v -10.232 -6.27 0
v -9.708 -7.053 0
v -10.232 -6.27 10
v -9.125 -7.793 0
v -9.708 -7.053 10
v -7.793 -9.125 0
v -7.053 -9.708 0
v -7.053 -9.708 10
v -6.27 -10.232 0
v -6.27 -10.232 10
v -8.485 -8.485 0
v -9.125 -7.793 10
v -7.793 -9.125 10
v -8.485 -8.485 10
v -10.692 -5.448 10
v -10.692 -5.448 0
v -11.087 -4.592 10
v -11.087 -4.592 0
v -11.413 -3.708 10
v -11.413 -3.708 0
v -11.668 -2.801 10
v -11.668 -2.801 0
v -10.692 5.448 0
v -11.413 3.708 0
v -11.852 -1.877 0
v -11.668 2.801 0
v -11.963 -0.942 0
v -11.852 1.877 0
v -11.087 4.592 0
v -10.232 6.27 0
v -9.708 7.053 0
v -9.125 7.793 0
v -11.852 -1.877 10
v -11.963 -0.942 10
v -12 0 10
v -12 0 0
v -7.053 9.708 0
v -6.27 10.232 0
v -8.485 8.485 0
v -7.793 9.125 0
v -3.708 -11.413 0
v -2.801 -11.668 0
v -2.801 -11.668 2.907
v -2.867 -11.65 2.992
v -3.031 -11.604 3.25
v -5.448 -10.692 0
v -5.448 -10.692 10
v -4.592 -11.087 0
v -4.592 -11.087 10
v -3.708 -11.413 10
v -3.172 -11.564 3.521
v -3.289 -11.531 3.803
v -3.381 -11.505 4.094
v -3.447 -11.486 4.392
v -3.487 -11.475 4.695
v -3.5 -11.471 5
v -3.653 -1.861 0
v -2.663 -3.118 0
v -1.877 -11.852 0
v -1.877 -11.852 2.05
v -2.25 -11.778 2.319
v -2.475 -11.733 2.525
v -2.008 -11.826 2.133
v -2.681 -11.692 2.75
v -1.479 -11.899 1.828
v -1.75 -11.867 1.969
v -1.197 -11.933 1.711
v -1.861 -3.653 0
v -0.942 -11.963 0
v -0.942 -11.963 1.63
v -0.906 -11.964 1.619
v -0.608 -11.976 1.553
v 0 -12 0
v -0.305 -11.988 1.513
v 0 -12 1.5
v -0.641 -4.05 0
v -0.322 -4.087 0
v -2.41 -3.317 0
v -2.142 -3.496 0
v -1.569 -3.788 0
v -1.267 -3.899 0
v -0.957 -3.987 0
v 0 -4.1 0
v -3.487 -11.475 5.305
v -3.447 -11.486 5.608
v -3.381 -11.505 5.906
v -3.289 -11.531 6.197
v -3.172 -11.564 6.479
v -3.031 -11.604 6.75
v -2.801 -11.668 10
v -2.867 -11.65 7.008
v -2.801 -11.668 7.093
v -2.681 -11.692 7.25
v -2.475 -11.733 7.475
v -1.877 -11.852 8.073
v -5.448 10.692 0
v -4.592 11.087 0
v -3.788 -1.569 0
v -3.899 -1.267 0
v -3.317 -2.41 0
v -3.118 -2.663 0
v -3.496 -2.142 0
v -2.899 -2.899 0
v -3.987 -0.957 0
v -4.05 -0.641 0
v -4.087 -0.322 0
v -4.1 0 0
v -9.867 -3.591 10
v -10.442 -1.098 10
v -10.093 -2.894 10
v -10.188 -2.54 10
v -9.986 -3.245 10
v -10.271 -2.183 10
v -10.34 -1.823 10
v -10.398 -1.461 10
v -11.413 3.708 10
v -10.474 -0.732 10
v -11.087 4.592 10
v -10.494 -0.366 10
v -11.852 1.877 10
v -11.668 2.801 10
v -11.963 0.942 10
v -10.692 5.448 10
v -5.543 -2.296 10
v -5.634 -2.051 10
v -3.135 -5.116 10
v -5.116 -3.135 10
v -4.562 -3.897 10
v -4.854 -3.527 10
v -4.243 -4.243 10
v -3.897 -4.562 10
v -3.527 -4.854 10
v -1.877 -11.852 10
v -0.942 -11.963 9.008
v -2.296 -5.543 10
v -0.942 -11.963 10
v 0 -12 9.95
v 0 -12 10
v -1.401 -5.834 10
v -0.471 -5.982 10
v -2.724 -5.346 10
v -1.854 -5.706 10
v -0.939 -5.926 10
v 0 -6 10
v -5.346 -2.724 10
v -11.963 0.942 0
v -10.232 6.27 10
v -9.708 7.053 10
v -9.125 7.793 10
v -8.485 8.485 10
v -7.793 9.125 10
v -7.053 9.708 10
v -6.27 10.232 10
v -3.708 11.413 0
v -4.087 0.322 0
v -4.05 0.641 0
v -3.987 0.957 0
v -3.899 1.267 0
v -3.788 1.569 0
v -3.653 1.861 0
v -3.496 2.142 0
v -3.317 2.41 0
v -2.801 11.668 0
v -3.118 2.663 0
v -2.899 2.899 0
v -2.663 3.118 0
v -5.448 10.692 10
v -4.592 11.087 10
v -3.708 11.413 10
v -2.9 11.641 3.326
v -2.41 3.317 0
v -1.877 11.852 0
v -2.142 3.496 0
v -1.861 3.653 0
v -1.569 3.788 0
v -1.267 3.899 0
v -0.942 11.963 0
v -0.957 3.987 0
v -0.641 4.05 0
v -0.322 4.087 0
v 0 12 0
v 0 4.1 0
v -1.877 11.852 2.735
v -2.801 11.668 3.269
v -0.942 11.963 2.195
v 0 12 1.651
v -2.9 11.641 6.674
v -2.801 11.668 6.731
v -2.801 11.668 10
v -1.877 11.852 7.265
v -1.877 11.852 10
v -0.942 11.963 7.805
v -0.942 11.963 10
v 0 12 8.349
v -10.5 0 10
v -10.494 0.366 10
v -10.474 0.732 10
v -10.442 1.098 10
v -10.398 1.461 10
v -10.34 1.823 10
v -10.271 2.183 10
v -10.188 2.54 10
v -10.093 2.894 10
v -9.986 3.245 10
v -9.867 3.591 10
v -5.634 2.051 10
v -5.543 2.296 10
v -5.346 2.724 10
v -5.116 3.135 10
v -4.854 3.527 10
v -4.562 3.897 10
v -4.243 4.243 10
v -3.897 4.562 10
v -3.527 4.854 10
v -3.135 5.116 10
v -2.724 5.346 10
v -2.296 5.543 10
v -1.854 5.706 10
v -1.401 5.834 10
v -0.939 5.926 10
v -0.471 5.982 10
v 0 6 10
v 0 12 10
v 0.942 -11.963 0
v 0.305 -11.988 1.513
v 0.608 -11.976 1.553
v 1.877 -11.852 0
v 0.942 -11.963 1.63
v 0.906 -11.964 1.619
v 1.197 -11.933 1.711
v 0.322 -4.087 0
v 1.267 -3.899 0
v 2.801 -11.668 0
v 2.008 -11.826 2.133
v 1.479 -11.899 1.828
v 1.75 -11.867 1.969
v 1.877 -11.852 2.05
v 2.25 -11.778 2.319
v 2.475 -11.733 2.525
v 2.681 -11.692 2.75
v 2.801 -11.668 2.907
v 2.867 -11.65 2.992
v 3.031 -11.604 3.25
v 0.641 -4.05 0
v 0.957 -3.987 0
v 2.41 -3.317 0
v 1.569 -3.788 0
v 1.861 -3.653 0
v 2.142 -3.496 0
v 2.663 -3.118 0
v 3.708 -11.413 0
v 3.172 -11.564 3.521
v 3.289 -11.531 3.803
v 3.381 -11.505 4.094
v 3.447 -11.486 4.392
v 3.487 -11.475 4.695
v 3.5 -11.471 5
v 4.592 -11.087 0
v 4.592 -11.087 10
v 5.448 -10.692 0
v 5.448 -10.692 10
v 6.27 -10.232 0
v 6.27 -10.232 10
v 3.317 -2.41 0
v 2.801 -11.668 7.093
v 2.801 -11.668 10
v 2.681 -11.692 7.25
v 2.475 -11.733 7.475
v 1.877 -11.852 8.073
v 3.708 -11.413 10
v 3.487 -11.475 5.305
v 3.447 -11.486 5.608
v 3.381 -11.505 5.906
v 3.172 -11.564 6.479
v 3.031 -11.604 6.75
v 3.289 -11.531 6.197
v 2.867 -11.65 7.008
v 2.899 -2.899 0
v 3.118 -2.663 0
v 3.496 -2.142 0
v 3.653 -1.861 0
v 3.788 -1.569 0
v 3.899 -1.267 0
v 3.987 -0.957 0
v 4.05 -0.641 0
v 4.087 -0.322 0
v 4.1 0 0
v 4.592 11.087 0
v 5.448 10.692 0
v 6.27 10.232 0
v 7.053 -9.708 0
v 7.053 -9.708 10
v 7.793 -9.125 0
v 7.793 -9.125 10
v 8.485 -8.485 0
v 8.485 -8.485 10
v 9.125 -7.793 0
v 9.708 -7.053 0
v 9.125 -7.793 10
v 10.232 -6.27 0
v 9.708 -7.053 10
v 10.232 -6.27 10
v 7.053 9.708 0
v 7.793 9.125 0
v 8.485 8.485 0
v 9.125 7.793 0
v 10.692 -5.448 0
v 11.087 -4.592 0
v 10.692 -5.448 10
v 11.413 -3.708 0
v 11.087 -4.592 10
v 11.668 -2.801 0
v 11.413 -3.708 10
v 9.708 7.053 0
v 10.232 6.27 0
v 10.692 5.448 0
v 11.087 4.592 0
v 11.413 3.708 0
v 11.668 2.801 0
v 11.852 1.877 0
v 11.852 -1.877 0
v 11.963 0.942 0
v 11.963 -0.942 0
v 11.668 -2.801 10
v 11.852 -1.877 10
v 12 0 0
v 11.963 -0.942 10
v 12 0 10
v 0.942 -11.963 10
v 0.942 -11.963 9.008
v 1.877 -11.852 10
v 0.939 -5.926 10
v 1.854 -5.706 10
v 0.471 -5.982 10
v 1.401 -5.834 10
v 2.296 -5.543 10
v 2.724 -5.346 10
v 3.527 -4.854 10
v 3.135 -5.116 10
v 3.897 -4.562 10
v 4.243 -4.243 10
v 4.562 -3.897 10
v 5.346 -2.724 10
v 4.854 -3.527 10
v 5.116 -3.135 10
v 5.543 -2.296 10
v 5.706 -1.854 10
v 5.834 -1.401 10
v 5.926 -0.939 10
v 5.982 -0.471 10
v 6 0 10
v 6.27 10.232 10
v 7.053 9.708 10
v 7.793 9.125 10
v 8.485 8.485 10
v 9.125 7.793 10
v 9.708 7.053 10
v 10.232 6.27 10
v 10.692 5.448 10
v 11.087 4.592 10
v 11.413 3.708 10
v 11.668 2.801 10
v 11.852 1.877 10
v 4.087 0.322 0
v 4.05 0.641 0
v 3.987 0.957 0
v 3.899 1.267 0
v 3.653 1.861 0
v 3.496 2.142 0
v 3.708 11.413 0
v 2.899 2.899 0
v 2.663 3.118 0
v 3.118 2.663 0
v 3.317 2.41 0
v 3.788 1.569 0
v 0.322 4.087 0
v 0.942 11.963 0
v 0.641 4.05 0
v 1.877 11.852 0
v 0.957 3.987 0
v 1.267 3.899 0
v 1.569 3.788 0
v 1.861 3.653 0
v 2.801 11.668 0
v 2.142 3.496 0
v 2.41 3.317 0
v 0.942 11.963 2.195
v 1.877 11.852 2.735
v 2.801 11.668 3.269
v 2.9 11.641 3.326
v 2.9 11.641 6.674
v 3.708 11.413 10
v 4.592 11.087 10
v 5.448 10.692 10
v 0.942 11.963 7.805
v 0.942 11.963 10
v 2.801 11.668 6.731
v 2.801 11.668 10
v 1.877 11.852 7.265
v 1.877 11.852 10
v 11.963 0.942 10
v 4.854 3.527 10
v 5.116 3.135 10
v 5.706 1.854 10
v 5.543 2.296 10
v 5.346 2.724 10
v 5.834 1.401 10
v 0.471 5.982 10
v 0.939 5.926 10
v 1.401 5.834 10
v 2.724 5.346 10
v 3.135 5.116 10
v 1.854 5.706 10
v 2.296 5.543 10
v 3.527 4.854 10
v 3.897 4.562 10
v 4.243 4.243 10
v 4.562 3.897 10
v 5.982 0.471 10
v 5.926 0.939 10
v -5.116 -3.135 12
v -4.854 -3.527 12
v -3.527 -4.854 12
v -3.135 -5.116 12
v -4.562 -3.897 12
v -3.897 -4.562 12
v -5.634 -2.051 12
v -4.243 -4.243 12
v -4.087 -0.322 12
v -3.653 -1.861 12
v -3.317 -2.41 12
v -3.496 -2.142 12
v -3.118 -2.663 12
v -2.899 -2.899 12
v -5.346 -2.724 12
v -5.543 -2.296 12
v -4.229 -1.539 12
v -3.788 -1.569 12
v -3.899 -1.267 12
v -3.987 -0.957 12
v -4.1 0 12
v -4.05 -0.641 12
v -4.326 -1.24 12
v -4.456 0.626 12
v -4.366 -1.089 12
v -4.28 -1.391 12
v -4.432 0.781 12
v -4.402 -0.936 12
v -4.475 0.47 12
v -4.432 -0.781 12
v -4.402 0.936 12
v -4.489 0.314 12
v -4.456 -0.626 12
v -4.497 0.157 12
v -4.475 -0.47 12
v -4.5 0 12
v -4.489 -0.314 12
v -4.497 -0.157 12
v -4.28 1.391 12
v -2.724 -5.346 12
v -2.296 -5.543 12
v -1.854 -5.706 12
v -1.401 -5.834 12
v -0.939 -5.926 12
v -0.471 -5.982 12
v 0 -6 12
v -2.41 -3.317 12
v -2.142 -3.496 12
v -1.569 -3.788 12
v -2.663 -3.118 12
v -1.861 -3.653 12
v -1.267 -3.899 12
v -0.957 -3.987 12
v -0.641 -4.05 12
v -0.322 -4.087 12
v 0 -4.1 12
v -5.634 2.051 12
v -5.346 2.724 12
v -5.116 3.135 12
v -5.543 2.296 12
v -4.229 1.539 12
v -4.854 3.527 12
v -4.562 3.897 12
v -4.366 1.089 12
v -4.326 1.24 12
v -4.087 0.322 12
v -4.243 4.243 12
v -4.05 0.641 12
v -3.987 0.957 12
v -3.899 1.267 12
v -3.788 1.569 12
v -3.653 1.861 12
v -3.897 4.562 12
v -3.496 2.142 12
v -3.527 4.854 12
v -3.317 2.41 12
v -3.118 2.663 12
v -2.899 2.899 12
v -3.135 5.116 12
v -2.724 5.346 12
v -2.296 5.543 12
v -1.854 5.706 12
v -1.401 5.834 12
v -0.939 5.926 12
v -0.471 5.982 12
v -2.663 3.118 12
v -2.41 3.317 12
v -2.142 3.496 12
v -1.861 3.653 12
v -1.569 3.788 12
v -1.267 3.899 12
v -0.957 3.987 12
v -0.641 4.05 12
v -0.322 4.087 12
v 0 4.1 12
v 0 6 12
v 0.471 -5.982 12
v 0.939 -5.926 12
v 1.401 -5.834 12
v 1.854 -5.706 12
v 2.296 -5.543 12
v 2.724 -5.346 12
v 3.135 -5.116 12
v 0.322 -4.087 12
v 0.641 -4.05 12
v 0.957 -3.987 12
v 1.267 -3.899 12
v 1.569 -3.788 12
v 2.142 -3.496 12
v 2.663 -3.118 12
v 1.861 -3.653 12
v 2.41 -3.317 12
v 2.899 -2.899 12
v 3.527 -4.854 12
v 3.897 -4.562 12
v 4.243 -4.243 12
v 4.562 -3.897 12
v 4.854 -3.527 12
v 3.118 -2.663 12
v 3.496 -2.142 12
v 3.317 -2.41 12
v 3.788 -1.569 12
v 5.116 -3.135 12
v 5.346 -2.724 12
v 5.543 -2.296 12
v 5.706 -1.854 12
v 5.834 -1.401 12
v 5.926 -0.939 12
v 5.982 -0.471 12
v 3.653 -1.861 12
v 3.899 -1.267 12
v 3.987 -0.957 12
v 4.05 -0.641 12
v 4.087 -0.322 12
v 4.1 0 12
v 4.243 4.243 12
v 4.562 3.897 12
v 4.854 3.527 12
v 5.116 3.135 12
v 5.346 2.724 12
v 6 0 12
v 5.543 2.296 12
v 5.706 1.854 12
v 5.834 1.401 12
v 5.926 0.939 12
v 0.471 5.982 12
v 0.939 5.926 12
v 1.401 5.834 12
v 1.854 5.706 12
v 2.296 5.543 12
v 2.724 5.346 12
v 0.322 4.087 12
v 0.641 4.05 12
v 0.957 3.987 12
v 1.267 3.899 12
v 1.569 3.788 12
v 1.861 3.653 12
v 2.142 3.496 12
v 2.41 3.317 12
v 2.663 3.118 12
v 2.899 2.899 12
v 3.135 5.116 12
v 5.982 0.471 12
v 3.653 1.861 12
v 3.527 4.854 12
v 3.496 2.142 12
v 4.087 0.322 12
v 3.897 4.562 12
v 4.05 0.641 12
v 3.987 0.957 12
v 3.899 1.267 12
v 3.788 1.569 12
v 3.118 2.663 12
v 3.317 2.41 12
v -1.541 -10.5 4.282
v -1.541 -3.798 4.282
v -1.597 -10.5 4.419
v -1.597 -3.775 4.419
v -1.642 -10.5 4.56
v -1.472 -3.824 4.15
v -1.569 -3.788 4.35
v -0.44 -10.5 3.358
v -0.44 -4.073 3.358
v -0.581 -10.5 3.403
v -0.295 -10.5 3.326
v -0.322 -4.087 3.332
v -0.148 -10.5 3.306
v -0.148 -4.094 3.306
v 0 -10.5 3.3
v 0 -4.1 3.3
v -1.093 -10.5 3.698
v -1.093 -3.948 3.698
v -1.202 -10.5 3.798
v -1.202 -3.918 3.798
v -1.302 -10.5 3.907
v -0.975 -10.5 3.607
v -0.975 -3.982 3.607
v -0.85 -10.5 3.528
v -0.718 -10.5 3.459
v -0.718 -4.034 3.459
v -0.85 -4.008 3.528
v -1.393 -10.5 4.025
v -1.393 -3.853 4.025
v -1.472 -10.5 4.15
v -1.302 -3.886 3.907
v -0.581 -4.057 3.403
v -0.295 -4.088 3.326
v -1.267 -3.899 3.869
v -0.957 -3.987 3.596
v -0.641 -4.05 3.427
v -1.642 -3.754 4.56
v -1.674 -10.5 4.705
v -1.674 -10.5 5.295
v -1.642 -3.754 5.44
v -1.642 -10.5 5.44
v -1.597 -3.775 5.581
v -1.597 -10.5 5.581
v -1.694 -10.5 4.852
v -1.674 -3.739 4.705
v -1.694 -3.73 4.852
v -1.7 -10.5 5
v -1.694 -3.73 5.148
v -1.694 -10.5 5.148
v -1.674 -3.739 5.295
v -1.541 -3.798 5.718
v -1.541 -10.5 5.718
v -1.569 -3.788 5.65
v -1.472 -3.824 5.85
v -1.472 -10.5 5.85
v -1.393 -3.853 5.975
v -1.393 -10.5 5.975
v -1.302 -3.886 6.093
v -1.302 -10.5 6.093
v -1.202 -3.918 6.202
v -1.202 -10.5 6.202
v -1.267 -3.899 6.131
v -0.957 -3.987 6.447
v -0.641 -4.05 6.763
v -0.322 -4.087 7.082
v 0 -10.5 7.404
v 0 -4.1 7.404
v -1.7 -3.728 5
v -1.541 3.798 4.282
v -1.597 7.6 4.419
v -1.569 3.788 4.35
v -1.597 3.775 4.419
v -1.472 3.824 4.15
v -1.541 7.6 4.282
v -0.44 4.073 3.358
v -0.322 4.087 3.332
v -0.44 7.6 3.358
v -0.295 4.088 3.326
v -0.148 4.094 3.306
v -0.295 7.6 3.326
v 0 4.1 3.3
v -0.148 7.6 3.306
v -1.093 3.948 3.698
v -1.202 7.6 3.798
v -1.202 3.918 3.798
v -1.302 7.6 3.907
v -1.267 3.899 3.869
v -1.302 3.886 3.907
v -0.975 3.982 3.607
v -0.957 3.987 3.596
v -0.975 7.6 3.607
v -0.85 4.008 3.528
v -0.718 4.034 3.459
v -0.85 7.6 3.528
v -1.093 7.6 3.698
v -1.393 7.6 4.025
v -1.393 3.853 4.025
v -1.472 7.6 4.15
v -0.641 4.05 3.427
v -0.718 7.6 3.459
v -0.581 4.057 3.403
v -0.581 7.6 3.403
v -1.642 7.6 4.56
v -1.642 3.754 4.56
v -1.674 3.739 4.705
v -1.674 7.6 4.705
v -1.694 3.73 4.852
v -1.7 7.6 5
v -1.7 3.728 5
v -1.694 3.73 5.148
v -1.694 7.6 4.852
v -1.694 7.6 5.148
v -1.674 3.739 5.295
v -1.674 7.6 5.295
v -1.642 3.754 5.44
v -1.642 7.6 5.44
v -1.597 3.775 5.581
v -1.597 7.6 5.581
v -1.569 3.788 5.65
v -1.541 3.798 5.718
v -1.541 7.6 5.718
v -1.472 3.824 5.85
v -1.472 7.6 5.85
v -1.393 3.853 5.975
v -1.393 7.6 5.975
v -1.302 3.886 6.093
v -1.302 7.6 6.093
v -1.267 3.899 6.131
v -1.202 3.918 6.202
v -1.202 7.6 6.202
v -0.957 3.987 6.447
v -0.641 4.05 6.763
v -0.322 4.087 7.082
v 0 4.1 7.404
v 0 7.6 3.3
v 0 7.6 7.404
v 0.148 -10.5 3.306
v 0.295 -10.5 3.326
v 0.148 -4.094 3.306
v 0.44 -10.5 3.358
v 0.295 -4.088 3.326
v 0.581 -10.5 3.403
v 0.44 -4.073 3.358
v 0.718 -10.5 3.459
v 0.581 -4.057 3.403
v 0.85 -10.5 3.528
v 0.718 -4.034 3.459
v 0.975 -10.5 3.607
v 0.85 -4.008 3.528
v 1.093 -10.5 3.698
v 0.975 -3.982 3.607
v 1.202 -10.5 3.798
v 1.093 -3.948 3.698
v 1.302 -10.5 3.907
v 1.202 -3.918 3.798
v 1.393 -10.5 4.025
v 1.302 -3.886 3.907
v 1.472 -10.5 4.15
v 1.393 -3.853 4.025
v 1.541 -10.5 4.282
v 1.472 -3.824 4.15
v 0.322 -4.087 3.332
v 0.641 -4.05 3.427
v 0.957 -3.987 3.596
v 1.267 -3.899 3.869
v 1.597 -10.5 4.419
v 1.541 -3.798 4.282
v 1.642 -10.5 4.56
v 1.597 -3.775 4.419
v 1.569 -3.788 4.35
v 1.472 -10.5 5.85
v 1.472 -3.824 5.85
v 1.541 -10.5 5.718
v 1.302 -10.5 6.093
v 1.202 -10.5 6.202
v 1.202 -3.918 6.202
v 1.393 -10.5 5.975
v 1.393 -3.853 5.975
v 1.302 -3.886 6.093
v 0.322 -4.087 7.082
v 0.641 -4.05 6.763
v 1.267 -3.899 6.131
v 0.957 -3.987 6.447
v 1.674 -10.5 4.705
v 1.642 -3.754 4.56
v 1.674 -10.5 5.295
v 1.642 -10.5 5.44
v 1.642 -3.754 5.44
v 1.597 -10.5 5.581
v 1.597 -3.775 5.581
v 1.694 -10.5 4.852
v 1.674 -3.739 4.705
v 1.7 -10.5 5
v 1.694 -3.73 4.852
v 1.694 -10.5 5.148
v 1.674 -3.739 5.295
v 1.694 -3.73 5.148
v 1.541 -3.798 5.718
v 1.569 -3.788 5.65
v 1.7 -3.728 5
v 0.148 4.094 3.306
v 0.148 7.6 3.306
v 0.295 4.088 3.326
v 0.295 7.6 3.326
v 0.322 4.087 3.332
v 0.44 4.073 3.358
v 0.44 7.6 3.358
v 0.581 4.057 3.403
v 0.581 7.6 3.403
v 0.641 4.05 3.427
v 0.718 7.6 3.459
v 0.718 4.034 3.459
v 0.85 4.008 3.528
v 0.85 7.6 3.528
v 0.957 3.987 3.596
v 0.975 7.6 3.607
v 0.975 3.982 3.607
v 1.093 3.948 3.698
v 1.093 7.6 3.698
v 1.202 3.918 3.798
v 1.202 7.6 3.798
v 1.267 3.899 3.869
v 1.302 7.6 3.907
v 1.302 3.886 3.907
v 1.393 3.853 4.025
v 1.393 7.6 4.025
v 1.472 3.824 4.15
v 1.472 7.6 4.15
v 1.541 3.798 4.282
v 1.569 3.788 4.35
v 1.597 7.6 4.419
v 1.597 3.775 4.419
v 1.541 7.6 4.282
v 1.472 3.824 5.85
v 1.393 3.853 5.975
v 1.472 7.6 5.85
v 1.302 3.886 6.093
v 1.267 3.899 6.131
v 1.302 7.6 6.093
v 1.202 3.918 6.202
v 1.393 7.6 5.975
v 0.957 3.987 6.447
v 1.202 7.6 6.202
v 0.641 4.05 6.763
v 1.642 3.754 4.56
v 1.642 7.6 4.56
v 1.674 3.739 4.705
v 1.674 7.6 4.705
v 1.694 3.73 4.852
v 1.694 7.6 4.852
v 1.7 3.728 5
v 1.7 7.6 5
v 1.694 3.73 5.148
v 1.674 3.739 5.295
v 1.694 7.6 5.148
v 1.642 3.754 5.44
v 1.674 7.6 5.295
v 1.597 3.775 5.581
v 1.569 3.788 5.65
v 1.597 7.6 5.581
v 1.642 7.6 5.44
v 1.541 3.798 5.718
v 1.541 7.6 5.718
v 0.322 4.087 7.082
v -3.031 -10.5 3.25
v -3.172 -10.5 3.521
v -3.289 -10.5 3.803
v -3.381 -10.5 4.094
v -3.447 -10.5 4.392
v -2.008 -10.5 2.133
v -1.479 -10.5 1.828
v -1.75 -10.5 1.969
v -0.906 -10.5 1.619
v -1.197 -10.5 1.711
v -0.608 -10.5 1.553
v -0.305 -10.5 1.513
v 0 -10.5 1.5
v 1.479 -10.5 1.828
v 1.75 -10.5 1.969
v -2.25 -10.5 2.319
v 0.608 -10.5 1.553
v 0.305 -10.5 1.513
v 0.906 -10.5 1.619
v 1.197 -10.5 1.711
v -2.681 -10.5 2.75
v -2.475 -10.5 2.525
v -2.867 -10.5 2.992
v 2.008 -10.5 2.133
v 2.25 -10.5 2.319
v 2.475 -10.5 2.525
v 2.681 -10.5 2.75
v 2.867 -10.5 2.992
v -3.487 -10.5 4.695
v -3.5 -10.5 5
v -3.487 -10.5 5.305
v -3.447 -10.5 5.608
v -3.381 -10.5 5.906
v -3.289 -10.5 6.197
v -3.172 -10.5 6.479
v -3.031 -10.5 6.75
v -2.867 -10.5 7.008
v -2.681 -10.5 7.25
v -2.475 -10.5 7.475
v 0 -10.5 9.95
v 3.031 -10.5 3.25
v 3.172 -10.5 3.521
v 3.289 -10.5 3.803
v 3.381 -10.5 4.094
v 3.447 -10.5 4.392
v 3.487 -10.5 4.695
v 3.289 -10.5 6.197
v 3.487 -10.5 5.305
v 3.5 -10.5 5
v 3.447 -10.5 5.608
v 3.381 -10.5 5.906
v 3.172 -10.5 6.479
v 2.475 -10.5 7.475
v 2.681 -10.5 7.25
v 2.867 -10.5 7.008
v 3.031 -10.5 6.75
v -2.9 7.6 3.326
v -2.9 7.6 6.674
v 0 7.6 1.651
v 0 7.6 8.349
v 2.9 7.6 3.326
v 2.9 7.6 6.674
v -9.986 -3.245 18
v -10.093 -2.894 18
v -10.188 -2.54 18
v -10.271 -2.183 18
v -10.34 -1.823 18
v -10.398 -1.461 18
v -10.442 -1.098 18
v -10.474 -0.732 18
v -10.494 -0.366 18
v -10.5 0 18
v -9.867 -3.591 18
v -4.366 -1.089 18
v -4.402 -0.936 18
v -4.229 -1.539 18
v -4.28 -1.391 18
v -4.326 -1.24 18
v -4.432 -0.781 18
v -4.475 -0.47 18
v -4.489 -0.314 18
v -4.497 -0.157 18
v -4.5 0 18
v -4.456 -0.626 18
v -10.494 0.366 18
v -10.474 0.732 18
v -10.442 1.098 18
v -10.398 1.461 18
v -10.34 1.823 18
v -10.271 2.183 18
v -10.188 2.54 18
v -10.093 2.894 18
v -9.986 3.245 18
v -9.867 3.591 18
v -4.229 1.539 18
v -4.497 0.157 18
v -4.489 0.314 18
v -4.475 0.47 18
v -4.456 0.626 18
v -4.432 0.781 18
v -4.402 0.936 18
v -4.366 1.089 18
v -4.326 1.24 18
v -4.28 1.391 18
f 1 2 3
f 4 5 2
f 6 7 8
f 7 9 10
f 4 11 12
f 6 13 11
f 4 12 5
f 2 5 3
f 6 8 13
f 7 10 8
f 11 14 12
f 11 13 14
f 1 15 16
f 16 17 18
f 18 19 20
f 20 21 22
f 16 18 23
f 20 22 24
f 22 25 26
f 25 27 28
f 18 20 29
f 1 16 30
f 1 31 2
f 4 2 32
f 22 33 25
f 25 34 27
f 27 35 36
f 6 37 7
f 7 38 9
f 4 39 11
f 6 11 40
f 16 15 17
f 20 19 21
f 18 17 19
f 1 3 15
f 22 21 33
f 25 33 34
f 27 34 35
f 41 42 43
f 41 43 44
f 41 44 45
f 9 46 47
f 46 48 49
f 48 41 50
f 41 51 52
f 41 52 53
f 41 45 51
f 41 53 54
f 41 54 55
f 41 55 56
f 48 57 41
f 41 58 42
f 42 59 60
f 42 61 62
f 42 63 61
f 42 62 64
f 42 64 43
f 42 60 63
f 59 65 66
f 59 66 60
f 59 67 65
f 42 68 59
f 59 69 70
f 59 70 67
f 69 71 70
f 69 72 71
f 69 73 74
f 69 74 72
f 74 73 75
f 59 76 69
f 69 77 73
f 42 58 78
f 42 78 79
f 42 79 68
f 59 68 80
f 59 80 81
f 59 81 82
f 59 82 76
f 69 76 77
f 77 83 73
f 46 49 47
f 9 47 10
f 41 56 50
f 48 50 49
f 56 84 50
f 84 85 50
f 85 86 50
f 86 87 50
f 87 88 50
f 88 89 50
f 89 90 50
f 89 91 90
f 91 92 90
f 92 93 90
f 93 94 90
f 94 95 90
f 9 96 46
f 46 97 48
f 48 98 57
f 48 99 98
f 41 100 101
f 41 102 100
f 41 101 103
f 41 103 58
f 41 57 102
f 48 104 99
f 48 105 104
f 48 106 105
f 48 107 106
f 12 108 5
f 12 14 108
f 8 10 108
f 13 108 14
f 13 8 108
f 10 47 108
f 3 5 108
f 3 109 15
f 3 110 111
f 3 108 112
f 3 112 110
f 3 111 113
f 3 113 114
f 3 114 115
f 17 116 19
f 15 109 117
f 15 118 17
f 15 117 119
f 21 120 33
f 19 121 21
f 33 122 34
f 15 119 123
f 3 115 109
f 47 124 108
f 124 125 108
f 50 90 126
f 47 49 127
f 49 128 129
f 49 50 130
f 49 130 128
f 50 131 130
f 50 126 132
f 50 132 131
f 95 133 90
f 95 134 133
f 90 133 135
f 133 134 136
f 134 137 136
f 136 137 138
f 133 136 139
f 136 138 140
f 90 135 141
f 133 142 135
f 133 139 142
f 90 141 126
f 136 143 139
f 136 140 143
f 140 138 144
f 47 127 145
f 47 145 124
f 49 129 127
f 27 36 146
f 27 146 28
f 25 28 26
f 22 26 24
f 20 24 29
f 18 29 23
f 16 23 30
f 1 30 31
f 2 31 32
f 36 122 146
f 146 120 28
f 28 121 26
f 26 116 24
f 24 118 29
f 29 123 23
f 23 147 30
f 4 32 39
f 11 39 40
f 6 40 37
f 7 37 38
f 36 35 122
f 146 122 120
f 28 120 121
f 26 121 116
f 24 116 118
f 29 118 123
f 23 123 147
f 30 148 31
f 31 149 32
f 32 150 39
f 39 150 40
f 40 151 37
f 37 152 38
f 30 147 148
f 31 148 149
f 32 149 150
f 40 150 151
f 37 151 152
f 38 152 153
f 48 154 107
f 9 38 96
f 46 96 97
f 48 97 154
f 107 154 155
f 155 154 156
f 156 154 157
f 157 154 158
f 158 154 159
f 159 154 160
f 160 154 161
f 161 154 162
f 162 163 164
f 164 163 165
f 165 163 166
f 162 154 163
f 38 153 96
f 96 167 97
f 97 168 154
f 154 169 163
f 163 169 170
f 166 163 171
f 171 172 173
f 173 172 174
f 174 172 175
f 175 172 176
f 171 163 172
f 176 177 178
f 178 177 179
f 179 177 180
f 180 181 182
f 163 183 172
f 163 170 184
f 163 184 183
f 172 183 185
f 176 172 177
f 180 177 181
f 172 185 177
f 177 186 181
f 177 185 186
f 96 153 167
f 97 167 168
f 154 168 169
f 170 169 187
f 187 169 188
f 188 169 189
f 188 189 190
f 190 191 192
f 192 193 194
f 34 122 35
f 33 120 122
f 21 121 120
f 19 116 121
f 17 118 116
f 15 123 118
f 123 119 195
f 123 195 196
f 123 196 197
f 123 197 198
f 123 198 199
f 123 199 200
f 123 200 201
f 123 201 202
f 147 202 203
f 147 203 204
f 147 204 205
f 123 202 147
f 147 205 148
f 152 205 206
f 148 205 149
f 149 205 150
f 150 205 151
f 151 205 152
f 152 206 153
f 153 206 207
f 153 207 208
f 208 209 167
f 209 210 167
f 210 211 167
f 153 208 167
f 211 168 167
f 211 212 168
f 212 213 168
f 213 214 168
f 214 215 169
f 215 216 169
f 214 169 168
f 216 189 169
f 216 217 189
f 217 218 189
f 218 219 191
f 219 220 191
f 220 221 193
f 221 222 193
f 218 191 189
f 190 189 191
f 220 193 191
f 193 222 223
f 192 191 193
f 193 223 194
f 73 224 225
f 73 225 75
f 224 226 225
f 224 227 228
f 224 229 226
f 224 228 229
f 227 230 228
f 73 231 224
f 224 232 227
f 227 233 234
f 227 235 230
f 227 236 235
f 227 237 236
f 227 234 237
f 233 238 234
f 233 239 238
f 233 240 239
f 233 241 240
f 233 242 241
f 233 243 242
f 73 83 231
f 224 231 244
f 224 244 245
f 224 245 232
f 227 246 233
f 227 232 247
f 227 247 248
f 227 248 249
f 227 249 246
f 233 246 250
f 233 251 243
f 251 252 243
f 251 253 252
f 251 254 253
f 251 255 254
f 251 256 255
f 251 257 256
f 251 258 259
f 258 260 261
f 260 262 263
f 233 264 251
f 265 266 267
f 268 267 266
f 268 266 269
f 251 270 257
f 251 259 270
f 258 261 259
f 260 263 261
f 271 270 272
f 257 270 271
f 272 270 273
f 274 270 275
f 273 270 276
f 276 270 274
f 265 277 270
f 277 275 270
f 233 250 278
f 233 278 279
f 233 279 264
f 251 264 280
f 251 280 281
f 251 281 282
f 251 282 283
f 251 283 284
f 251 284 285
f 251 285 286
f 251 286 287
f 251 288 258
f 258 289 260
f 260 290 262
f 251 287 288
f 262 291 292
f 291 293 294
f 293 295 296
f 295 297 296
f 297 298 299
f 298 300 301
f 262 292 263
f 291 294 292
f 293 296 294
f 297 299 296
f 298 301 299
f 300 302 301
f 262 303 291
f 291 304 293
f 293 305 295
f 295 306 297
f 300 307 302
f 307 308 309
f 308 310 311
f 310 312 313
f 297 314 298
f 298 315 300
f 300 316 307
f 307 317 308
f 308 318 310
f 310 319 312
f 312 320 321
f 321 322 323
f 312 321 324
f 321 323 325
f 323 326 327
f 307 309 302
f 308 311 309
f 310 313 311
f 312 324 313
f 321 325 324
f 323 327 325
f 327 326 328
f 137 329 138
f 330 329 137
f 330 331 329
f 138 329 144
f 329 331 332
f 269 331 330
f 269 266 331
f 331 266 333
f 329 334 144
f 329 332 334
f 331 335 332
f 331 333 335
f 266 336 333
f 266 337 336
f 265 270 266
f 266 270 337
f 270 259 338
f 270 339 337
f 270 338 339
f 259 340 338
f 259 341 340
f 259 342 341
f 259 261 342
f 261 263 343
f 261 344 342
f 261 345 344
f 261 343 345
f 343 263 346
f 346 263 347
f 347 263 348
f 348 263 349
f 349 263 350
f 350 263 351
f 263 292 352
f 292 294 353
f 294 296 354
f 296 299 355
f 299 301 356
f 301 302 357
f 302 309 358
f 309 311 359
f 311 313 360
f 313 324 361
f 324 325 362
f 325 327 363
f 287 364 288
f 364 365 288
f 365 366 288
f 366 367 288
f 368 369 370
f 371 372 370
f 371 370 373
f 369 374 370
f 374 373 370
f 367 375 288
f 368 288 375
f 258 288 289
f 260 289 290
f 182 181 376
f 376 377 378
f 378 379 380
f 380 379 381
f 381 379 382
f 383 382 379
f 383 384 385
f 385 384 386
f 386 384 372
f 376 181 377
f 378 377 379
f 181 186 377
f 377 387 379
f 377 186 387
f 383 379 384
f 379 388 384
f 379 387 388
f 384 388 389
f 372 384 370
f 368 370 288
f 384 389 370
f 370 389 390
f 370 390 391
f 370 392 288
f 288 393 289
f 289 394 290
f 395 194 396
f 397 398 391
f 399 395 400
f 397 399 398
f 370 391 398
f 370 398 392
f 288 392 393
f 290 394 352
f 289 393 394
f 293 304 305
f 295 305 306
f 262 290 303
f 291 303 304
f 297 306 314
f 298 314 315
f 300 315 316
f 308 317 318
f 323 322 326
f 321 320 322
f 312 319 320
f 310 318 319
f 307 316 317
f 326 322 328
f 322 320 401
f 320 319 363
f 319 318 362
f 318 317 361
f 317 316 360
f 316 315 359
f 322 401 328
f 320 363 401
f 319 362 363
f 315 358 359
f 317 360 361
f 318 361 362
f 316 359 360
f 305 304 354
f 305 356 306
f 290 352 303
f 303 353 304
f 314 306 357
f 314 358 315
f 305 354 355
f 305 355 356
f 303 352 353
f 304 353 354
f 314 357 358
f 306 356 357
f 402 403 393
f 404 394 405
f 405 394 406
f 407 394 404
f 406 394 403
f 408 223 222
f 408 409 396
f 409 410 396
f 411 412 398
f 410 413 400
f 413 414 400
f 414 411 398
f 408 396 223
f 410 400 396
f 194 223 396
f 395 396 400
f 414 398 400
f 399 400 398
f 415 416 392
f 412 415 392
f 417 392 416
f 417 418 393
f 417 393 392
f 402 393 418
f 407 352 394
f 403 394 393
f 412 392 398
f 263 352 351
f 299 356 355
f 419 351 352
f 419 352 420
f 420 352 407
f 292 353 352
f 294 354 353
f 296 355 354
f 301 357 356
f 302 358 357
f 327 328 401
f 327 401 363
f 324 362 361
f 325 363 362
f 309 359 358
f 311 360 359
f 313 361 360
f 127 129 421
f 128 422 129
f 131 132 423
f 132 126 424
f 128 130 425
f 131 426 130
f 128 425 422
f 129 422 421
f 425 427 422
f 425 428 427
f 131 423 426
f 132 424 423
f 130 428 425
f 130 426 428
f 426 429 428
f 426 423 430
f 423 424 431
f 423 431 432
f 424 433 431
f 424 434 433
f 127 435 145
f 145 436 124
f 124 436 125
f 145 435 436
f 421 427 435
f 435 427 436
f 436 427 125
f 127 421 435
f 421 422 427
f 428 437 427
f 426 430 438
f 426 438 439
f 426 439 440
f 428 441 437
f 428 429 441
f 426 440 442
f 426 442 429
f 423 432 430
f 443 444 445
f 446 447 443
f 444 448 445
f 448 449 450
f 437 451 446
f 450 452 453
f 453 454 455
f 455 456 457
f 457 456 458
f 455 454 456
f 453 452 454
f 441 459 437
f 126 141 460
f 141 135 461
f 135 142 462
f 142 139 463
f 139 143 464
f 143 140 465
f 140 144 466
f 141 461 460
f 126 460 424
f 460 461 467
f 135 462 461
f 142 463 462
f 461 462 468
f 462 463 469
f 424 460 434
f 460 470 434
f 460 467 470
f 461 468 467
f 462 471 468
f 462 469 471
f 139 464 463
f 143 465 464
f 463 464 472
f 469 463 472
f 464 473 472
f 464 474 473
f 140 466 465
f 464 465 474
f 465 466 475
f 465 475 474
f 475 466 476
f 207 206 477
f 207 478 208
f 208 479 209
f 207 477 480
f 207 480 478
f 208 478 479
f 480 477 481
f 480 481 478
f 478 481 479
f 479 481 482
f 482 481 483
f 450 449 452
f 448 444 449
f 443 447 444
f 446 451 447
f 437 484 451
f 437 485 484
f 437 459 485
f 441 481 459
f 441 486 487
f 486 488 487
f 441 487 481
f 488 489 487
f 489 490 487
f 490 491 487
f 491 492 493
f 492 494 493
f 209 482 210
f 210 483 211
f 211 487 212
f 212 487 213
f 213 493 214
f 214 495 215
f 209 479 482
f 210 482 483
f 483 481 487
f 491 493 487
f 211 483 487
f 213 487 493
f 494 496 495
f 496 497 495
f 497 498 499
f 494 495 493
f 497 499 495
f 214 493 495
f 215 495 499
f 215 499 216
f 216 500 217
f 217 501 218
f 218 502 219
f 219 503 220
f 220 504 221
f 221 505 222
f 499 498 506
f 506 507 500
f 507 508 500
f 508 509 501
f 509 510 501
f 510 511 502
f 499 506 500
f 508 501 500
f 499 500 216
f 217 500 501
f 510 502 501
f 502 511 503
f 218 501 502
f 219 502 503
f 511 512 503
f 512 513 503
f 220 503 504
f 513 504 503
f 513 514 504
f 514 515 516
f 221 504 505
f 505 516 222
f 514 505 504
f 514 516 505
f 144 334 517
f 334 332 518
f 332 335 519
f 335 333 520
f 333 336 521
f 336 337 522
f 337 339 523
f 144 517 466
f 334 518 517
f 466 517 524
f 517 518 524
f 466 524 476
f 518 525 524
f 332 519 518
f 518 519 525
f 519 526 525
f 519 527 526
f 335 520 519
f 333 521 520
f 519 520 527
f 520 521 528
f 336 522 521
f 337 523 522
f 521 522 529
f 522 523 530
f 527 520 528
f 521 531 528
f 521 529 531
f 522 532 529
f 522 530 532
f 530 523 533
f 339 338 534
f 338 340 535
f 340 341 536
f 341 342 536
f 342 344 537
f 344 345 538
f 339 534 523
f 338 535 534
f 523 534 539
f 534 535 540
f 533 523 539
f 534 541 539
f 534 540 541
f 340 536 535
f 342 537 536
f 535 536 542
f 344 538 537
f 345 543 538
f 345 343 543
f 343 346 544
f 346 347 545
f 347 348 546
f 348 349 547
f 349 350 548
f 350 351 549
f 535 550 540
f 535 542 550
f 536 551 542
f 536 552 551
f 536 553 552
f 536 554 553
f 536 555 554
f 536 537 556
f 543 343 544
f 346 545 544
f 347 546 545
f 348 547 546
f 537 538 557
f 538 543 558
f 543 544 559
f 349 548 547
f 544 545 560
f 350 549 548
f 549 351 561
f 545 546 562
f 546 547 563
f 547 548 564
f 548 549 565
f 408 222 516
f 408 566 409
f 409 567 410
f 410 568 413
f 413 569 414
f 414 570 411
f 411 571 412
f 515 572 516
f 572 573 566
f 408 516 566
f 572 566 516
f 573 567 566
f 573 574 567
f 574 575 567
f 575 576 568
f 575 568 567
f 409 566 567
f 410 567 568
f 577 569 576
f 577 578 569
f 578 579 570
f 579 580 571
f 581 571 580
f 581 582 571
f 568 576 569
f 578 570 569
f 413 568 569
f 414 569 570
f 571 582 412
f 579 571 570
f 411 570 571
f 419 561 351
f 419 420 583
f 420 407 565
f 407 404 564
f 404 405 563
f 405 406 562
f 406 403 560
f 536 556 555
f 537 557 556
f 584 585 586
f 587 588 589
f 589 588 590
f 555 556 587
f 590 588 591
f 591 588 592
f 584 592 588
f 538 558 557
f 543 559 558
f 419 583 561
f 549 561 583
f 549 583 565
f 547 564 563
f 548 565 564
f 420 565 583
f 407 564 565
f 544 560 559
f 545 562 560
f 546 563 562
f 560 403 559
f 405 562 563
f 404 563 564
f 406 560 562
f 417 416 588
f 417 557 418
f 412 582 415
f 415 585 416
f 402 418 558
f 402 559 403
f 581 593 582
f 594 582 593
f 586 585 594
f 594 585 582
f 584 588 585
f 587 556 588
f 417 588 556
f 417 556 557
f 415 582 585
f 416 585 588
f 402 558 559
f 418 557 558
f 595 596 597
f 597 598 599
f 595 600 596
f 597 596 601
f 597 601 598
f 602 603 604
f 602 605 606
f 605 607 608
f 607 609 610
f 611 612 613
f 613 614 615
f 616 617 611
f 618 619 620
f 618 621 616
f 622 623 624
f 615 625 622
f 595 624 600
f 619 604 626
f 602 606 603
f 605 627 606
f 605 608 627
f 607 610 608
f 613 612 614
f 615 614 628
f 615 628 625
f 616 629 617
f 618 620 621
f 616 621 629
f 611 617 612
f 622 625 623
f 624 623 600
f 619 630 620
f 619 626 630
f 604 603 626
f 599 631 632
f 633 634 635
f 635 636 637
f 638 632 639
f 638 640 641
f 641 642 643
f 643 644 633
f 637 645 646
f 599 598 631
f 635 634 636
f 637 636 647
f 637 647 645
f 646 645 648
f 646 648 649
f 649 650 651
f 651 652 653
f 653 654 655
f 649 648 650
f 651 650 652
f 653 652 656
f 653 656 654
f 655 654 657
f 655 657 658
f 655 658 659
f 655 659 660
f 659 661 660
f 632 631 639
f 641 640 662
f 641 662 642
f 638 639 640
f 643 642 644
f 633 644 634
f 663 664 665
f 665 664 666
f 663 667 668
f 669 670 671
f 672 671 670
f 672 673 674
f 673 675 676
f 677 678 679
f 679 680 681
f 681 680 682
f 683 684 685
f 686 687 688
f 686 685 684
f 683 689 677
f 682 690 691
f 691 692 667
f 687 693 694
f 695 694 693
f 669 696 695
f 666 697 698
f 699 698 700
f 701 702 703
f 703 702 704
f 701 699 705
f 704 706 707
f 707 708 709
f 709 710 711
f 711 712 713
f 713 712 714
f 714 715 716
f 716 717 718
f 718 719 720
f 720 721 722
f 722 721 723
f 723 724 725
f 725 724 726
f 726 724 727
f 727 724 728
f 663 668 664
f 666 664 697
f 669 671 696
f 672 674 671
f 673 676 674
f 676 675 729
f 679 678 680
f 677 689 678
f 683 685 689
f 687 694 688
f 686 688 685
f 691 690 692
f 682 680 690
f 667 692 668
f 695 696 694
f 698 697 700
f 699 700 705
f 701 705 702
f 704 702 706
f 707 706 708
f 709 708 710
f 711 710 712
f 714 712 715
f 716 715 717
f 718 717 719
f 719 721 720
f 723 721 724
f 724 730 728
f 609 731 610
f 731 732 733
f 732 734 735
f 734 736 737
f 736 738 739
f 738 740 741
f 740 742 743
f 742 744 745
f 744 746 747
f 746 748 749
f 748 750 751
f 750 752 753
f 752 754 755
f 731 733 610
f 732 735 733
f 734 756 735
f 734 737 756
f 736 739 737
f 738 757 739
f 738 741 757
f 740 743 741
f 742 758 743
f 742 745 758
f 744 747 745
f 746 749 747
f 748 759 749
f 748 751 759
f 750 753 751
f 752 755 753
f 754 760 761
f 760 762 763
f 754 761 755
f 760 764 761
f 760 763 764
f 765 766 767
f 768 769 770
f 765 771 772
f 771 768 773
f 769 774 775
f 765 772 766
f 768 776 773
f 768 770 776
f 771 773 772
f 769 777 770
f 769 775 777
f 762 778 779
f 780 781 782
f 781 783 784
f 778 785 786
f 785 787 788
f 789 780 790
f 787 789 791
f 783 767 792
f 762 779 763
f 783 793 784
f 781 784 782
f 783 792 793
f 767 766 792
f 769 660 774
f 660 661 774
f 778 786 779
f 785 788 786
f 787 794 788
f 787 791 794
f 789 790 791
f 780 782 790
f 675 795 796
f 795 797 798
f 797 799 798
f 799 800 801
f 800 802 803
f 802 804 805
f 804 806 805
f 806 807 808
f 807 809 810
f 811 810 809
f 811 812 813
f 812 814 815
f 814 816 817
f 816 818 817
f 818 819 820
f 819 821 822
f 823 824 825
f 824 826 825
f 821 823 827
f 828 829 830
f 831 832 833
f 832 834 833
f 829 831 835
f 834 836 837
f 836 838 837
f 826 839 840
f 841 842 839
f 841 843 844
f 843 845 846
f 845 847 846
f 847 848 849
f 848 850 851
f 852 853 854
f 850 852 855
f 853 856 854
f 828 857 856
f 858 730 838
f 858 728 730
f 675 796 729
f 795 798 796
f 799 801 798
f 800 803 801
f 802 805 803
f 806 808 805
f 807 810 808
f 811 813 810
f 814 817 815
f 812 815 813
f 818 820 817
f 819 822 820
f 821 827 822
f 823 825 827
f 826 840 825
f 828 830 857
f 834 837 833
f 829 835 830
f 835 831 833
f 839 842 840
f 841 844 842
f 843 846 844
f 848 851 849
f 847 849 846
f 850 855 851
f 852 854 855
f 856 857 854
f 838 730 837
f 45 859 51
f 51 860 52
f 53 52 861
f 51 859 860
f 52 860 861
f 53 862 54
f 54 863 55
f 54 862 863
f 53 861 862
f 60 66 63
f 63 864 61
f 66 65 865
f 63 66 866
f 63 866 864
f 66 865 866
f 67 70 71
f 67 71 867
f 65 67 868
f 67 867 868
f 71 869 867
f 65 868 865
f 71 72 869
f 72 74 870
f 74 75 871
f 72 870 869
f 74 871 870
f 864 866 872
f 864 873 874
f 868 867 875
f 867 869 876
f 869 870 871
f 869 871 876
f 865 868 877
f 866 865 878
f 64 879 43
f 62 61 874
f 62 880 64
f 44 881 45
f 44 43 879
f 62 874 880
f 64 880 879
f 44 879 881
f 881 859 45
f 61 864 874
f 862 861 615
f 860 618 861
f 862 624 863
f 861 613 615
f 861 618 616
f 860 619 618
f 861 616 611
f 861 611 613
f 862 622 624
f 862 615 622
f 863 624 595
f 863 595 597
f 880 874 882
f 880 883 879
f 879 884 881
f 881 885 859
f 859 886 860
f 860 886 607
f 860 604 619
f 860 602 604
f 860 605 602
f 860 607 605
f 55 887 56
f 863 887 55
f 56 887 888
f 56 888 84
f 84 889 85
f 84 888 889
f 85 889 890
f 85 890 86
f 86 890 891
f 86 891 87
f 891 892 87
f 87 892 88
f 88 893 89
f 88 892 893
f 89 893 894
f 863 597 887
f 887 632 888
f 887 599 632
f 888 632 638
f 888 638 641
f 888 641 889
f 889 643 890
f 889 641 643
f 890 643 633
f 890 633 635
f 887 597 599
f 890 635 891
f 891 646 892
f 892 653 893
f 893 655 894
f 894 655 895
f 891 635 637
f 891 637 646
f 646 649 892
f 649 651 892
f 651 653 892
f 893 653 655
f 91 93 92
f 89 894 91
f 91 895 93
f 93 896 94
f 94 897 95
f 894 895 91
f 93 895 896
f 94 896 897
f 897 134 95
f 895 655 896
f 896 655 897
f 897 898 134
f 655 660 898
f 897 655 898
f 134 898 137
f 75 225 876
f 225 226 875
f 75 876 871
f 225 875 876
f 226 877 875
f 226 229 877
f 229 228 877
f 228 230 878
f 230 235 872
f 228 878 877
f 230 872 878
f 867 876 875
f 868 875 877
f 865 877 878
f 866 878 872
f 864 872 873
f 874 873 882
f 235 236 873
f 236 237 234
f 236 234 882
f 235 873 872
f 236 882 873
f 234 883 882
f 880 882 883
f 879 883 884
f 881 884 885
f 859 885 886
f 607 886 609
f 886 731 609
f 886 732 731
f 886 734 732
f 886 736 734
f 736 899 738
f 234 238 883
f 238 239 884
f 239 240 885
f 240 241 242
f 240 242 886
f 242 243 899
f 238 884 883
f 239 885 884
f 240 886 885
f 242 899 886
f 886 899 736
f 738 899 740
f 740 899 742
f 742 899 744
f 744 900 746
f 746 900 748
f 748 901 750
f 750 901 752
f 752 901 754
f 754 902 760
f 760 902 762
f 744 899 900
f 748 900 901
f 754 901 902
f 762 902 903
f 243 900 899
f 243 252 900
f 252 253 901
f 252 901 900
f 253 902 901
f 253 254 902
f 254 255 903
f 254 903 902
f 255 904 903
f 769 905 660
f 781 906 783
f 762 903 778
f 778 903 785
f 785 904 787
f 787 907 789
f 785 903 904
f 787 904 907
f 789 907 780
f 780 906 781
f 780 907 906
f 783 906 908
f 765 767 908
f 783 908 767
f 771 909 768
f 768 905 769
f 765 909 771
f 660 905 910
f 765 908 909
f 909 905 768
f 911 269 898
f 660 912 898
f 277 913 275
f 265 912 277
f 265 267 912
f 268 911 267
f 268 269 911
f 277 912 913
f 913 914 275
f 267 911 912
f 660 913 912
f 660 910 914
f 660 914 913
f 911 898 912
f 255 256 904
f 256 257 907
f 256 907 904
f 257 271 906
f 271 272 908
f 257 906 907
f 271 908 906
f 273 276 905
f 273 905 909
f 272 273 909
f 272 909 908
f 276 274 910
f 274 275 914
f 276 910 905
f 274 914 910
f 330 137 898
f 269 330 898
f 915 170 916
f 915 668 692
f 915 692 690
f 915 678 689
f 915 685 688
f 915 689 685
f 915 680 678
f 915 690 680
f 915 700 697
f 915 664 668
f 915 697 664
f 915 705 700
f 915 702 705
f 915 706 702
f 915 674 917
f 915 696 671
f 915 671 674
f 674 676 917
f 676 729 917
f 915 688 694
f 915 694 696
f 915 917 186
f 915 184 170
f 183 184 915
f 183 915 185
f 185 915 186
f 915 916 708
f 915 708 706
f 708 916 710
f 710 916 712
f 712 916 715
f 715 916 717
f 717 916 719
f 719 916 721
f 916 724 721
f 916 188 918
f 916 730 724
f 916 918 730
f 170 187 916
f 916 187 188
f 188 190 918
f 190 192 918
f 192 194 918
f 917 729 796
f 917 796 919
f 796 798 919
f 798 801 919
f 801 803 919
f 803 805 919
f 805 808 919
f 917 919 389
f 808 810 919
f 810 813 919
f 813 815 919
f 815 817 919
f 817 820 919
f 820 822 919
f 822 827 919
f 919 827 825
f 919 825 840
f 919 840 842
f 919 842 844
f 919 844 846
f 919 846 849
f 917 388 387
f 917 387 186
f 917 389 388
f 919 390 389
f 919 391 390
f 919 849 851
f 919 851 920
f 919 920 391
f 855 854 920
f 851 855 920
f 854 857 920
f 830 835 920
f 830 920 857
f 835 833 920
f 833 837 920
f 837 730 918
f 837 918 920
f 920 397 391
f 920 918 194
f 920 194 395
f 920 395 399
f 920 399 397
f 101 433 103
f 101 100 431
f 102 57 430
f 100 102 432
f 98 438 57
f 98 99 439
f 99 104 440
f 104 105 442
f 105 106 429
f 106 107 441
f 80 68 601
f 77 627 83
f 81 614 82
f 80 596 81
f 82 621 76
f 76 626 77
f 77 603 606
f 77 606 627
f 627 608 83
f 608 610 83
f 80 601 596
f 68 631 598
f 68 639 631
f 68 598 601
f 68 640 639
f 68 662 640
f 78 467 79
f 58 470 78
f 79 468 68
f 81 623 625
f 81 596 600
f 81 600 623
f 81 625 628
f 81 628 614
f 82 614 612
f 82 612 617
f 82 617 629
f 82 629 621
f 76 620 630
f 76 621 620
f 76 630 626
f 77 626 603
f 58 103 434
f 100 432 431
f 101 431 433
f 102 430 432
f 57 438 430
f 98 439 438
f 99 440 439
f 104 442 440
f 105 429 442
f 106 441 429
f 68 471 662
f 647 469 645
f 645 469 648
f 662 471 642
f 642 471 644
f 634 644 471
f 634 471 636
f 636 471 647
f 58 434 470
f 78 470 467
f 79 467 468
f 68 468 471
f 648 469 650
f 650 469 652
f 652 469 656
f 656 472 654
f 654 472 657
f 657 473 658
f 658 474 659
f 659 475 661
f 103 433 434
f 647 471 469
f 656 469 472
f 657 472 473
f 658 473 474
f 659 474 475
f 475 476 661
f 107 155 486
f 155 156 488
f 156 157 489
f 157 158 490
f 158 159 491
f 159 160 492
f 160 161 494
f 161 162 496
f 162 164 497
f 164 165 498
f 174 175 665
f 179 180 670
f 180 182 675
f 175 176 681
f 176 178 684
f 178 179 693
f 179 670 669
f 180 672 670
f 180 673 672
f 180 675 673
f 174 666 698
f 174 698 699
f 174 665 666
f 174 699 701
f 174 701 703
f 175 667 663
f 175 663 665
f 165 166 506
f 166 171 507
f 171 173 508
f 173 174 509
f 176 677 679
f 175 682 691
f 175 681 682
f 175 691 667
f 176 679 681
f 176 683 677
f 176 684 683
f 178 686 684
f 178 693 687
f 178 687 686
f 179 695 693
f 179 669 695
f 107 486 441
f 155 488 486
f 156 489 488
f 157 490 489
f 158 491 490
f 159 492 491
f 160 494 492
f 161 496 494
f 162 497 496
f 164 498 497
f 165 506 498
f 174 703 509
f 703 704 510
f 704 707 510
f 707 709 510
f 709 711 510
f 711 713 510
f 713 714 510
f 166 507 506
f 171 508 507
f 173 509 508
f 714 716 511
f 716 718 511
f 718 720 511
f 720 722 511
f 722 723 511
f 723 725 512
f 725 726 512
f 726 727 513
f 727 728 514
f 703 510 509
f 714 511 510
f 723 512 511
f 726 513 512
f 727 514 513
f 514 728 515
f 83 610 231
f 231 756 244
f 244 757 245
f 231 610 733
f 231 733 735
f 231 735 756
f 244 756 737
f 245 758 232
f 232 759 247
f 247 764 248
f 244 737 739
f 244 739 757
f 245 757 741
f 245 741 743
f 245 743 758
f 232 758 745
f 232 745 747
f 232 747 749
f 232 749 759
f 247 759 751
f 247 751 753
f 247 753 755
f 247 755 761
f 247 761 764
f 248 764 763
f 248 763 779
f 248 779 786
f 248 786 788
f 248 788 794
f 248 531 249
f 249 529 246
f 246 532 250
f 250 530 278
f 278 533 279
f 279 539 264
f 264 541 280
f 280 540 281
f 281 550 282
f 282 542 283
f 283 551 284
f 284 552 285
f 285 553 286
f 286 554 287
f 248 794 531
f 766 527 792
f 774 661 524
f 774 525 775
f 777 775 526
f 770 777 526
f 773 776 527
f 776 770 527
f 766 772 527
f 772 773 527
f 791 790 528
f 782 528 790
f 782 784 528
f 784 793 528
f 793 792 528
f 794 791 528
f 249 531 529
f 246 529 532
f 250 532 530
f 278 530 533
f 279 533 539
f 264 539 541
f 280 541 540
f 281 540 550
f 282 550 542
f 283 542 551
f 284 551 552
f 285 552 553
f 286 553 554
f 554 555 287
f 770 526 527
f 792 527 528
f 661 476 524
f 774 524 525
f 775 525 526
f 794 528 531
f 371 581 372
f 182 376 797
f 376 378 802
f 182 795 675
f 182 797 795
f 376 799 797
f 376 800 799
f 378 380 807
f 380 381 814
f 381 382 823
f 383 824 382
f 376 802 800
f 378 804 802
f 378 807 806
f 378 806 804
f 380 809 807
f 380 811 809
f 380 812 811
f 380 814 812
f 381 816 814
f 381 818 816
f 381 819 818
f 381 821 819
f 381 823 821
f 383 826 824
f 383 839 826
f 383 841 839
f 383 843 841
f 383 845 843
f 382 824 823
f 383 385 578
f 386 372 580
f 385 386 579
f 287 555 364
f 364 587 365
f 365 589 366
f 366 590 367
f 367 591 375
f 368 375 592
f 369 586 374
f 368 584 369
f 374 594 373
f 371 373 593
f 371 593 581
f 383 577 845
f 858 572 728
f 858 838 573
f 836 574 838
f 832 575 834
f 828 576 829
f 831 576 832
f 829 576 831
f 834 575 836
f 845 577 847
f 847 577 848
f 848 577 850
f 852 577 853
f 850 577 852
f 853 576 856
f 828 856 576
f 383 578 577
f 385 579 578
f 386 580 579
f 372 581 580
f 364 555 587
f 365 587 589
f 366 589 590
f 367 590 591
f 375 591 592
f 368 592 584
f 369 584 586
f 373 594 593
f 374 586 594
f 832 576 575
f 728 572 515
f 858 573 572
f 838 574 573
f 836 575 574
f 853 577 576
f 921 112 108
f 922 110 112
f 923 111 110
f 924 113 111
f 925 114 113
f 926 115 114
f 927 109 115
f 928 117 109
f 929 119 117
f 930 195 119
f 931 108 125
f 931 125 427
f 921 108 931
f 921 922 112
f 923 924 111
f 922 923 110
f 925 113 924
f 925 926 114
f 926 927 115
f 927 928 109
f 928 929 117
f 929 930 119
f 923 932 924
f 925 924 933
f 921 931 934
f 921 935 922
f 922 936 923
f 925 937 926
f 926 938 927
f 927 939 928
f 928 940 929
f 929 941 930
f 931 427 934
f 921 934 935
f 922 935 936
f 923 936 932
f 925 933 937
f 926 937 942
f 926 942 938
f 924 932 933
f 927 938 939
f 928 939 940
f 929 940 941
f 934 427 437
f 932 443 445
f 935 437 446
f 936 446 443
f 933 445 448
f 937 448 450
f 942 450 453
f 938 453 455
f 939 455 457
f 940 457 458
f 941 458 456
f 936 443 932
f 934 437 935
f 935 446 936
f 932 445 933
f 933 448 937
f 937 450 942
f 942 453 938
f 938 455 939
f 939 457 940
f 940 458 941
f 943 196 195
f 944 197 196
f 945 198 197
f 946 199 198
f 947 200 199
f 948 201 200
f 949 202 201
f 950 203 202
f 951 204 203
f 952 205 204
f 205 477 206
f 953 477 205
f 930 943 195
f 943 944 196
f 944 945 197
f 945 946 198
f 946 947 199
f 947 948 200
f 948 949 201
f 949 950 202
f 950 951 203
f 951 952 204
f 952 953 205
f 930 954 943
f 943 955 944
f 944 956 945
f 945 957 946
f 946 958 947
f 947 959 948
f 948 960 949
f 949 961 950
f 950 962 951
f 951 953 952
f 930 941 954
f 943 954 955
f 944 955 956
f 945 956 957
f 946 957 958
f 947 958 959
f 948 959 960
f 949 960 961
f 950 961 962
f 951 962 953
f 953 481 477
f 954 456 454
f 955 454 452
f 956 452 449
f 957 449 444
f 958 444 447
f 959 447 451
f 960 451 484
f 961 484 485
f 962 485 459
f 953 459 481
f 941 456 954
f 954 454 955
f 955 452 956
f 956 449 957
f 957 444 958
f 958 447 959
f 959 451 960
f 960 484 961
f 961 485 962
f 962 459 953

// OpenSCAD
// file: lib/bores.scad
// Shared bore helpers. Lives under cad/lib/ so regen_all.py does not try
// to export it as a printable part (it scans cad/ and cad/calibration/ only).

// Horizontal rod bore, printable without supports: a cylinder along +X
// with a 45-degree teardrop roof. Every part in this project prints in
// its natural orientation, which leaves the hub arm sockets and the vane
// sleeve bore lying horizontally — a plain circle would sag at the
// crown, so the crown is a peak instead. The peak points to +Z: keep the
// part's print orientation equal to its modeled orientation.
//
// The rod fit gauge prints its holes through this same module, so the
// calibrated rod_snug_d / rod_free_d numbers already contain whatever
// error the teardrop introduces.
//
// Starts at x=0, runs to x=l. Subtract it; the caller adds any overrun.
module rod_bore(d, l) {
    r = d / 2;
    rotate([90, 0, 90])
        linear_extrude(height = l)
            polygon(concat(
                // lower ~3/4 circle from 45 deg past top, going clockwise
                [for (a = [45 : 5 : 315]) [r * cos(a + 90), r * sin(a + 90)]],
                // 45-degree roof peak
                [[0, r * sqrt(2)]]));
}
// file: lib/stop_wedge.scad
// Annular-sector stop wedge, shared by end_cap.scad and tip_bracket.scad.
// Sits on z = 0, extends +z, centered on the +x direction. Its flat
// radial side faces land flush on the vane sleeve notch's walls (cut by
// the same kind of radial plane in vane.scad), so the stop impact is a
// face contact, not a cylinder's line contact.
//
// Fully parameterized like bores.scad: callers pass the shared
// stop_wedge_* values from design_params.scad.
//
// deg should be a multiple of 4 so the 2-degree facet steps land
// exactly on the side faces.

module stop_wedge(ri, ro, deg, h) {
    linear_extrude(height = h)
        polygon(concat(
            [for (a = [-deg / 2 : 2 : deg / 2]) [ro * cos(a), ro * sin(a)]],
            [for (a = [deg / 2 : -2 : -deg / 2]) [ri * cos(a), ri * sin(a)]]));
}
// file: collar.scad
// ==============================================================================
//   THRUST COLLAR — print ONE (the arms use arm_collar.scad, which is
//   this part plus the inboard stop wedge).
//
//   Goes on the shaft: boss down, riding the top bearing's INNER race.
//   This is the rotor's thrust bearing seat — the whole rotating mass
//   hangs on it. The boss stays inside bearing_inner_shoulder_d so it
//   never touches the static outer race.
//
//   Held by an M3 THROUGH-BOLT crossing collar and rod: at assembly the
//   collar is positioned on its snug bore, the rod is drilled through
//   the printed hole (the collar is its own drill jig), and the bolt
//   goes through with a nyloc nut in the side pocket. No friction grip
//   on smooth aluminum — printed clamps creep loose over the years,
//   a bolt through the rod cannot.
//
//   Prints ring-face down (boss up), the bolt hole lying horizontal as
//   a teardrop.
// ==============================================================================

include <design_params.scad>
use <lib/bores.scad>

$fn = 80;

module collar() {
    difference() {
        union() {
            cylinder(h = collar_w, d = collar_od);
            translate([0, 0, collar_w])
                cylinder(h = collar_boss_h, d = collar_boss_d);
        }
        // bore — snug, so the collar holds position while drilling
        translate([0, 0, -0.5])
            cylinder(h = collar_w + collar_boss_h + 1, d = rod_snug_d);
        bolt_pocket(collar_od);
    }
}

// The through-bolt cut, shared with arm_collar via this file: teardrop
// clearance bore across the given diameter at mid ring height, a
// teardrop head seat on the -Y side, a nyloc pocket (one flat up) on
// the +Y side.
module bolt_pocket(od) {
    translate([0, 0, collar_w / 2]) {
        translate([0, -od / 2 - 1, 0])
            rotate([0, 0, 90])
                rod_bore(m3_clear_d, od + 2);
        translate([0, -od / 2 - 1, 0])
            rotate([0, 0, 90])
                rod_bore(m3_head_d + 0.6, 2.5);
        translate([0, od / 2 - m3_locknut_t, 0])
            rotate([-90, 0, 0])
                rotate([0, 0, 30])
                    cylinder(h = m3_locknut_t + 1,
                             d = m3_nut_af / cos(30), $fn = 6);
    }
}

collar();
// file: design_params.scad
// ============================================================
// SKUA SHARED DESIGN PARAMETERS — single source of truth for
// every dimension two parts must agree on.
//
// Consumers:
//   - every part in cad/ does        include <design_params.scad>
//   - parts in cad/calibration/ do   include <../design_params.scad>
//   - scripts/check_params.py FAILS the build if any of these names
//     is re-declared anywhere else — change values HERE only.
//
// Keep this file to simple `name = value;` lines so the tooling can
// parse it. One-off experiments: `openscad -D name=value` beats the
// include, no need to edit this file.
// ============================================================

// --- Aluminum rod stock (bought; ONE diameter everywhere) ---
// 8 mm rod is chosen to match the 608 bearing bore, so the shaft and
// both arms cut from the same stock.
rod_d        = 8;
shaft_length = 150;  // vertical shaft; sets how high the rotor rides.
                     // Long enough that the hanging vanes clear the
                     // plank — geometry_check.py gates the clearance.
arm_length   = 600;  // each horizontal arm (two of them)

// --- 608 skateboard bearing (bought, TWO of them) ---
// Two bearings spaced apart in the base tower instead of one: a single
// 7 mm-wide bearing lets a 1.2 m rotor wobble; two races 45 mm apart
// make the shaft run true. They come in packs of 8 anyway.
bearing_od = 22;
bearing_w  = 7;
bearing_inner_shoulder_d = 12;  // inner-ring shoulder: anything riding
                                // the INNER race (collar boss) stays
                                // inside this; anything static stays
                                // outside it
pocket_recess = 0.5;  // bearings sit this far below the tower faces so
                      // the rotating inner race never rubs plank or collar body

// --- Calibrated fits (print the gauges, type the winners in here) ---
bearing_press_d = 21.8; // pocket that grips the outer race — cad/calibration/bearing_pocket_gauge.scad
rod_snug_d      = 8.2;  // sockets the rod presses into (hub, collar, cap) — cad/calibration/rod_fit_gauge.scad
rod_free_d      = 8.6;  // bores that must SPIN on the rod (vane sleeve) — same gauge
fit_tol         = 0.2;  // clearance for printed slots/pockets

// --- Base (screwed to the plank) ---
base_d         = 120;
base_t         = 8;
screw_hole_d   = 4.5;   // 4.2 mm wood screws
screw_head_d   = 9.5;   // countersink cone top diameter
screw_circle_d = 95;
screw_count    = 4;
tower_od       = 40;    // 9 mm wall around the bearing pockets
tower_h        = 70;    // bearing pockets at top and bottom of this
tower_bore_d   = 19;    // between the pockets: retains the outer races,
                        // clears the 12 mm inner-race shoulders
gusset_t       = 6;
gusset_reach   = 25;    // how far a gusset runs out from the tower wall
gusset_h       = 55;

// --- Hub (clamps the shaft top, carries both arms) ---
hub_len          = 80;  // along the arms
hub_w            = 32;
hub_h            = 48;
hub_arm_z        = 38;  // arm bore axis above the hub bottom face
hub_shaft_socket = 30;  // blind shaft socket depth, from the bottom
hub_arm_socket   = 35;  // blind arm socket depth, from each end
hub_corner_r     = 6;
hub_beam_z       = 28;  // T profile: below this only the stem and its 45
hub_stem_w       = 30;  // degree chamfers remain — the lower corners of
                        // the old box carried no load and cost print time

// --- M3 hardware (every rod joint is a through-bolt: the M3 passes
//     through the printed part AND a hole drilled in the rod at
//     assembly, using the part as the drill jig — a positive lock,
//     where any friction clamp on smooth aluminum creeps loose) ---
m3_clear_d    = 3.4;
m3_nut_af     = 5.8;  // nut across flats, incl. pocket clearance
m3_locknut_t  = 4.4;  // nyloc nut height, incl. pocket clearance
m3_head_d     = 6.4;

// --- Vane (the flapping flag; TWO of them) ---
vane_sleeve_len = 70;
vane_sleeve_od  = 22;   // thick walls: the stop notch shoulders take the
                        // wedge impact every pass
vane_width      = 200; // panel size along the arm; wide-and-short so the
vane_drop       = 100; // panel (sleeve AXIS to bottom edge) keeps its area
                       // while clearing the plank under the 150 mm shaft
vane_t          = 3;
vane_rim_w      = 4;   // stiffening rim around the panel
vane_rim_h      = 6;
vane_swing_deg  = 120; // free swing between the two stops

// --- Stop cap (arm tip: retains the vane, carries the outboard stop wedge) ---
cap_d          = 24;
cap_t          = 12;
cap_bore_depth = 10;

// --- Stop wedges (SHARED: one on the end cap, one on the arm collar;
//     each rides a notch in its end of the vane sleeve so the stop
//     impact is carried by two, and their flat radial faces land flush
//     on the notch walls — lib/stop_wedge.scad) ---
stop_wedge_deg = 40;   // angular thickness; the notch arc grows by this
stop_wedge_len = 6;    // proud of the carrier face, riding in the notch
stop_wedge_ri  = 4.5;  // inner radius: clears the rod
stop_wedge_ro  = 10.5; // outer radius: spans the sleeve wall, inside the
                       // carrier faces (geometry_check.py verifies all)

// --- Clamp collars (ONE plain on the shaft as thrust support; the arm
//     collars in arm_collar.scad add the inboard stop wedge) ---
collar_od     = 24;
collar_w      = 10;
collar_boss_d = 12;    // rides the bearing inner race / vane sleeve end
collar_boss_h = 2;

// --- Assembly stations / sanity limits ---
shaft_bottom_gap = 2;   // shaft tip hovers this far above the plank
printer_bed      = 210; // largest printable footprint, gates part sizes
// main file
// ==============================================================================
//   ARM COLLAR — inboard stop on each arm rod (print TWO).
//
//   The thrust collar (collar.scad) plus the inboard stop wedge: it
//   rides in the vane sleeve's inboard notch, mirroring the end cap's
//   wedge in the outboard notch, so every stop impact is shared by two
//   flat faces instead of hammering one. At assembly both are set to
//   the same angle before drilling the rod for the through-bolts
//   (README).
//
//   The wedge sits at 90 degrees to the through-bolt, so the bolt bore
//   never weakens its base. It clears the boss face by stop_wedge_len,
//   matching the cap wedge's engagement.
//
//   Prints like the collar: ring face down, boss and wedge up.
// ==============================================================================

include <design_params.scad>
use <collar.scad>
use <lib/stop_wedge.scad>

$fn = 80;

module arm_collar() {
    collar();
    // stop wedge: through the boss layer, then stop_wedge_len proud of it
    rotate([0, 0, 180])
        translate([0, 0, collar_w])
            stop_wedge(stop_wedge_ri, stop_wedge_ro, stop_wedge_deg,
                       collar_boss_h + stop_wedge_len);
}

arm_collar();
